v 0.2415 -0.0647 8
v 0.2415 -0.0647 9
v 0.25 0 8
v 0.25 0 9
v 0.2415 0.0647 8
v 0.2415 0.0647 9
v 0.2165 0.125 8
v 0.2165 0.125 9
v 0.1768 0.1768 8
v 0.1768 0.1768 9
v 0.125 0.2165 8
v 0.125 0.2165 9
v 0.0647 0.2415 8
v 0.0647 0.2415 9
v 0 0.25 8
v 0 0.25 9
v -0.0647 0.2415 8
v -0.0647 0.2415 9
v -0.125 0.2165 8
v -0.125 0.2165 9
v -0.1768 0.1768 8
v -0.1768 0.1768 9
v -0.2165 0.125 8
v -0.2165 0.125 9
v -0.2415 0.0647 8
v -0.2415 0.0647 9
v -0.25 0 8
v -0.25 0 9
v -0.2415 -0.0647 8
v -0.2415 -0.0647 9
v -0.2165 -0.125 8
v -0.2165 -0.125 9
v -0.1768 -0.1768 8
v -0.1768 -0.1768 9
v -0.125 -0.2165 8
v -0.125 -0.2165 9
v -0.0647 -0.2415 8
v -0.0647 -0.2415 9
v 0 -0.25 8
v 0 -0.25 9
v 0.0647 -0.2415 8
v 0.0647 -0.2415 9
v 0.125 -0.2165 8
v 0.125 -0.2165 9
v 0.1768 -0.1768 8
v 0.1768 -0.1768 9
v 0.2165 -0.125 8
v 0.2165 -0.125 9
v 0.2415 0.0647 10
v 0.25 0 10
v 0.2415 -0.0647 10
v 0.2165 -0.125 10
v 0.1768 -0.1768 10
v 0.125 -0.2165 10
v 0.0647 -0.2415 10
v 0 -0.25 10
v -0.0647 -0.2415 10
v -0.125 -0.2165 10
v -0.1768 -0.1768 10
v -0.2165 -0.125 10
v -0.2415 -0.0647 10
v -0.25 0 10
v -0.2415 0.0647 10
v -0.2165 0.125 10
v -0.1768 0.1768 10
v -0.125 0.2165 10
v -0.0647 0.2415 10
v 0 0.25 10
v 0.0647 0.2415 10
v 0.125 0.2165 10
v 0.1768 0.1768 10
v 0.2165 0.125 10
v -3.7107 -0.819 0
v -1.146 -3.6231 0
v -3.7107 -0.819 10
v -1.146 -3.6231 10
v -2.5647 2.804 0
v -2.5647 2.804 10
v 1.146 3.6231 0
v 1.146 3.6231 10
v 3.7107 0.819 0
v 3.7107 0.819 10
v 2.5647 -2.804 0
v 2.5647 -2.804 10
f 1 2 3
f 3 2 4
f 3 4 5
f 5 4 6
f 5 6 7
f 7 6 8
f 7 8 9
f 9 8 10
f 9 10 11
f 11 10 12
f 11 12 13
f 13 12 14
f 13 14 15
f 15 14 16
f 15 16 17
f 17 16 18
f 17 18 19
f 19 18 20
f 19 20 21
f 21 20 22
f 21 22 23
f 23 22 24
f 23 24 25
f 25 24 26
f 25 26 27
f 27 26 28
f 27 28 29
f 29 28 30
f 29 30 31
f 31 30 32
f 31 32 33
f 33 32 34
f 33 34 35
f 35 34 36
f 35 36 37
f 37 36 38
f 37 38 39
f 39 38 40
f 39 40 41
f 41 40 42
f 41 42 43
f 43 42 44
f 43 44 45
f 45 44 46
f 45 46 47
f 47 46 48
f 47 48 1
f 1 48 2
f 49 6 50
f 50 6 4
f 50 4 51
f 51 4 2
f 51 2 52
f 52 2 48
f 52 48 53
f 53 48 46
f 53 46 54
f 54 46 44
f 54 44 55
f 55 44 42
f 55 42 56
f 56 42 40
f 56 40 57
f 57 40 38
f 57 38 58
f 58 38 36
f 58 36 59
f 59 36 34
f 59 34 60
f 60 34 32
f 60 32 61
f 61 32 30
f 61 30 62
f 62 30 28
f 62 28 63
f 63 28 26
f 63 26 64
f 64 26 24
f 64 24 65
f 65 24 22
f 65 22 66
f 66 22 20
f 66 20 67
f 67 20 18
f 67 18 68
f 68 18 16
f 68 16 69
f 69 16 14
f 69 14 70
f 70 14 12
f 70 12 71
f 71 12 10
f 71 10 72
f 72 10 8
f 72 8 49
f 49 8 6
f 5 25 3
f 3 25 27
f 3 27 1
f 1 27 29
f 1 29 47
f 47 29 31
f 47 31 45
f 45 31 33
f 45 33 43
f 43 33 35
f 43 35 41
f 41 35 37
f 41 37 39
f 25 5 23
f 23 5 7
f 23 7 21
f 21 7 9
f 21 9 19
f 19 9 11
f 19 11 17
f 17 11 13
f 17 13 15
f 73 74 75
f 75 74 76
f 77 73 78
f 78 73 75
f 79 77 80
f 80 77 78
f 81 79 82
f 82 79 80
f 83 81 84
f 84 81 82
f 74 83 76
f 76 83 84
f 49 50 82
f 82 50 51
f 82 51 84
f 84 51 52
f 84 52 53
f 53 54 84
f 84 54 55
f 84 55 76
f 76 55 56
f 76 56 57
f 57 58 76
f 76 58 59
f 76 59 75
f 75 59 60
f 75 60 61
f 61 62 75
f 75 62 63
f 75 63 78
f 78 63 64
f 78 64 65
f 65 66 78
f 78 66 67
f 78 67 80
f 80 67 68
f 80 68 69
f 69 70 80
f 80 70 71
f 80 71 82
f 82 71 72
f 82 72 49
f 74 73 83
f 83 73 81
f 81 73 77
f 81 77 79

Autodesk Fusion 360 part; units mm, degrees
sketch "Sketch1" plane through (0, 0, 0) normal (0, 0, 1) x (1, 0, 0)
  line L0 (2.5647, -2.804) -> (3.7107, 0.819)
  line L1 (3.7107, 0.819) -> (1.146, 3.6231)
  line L2 (1.146, 3.6231) -> (-2.5647, 2.804)
  line L3 (-2.5647, 2.804) -> (-3.7107, -0.819)
  line L4 (-3.7107, -0.819) -> (-1.146, -3.6231)
  line L5 (-1.146, -3.6231) -> (2.5647, -2.804)
  dimension "d1" = 3.8
extrude "Extrude1" add sketch "Sketch1" along normal blind 10
sketch "Sketch2" plane through (0, 0, 10) normal (0, 0, 1) x (-1, 0, 0)
  line L0 (1.146, 3.6231) -> (-2.5647, 2.804)
  line L1 (-2.5647, 2.804) -> (-3.7107, -0.819)
  line L2 (-3.7107, -0.819) -> (-1.146, -3.6231)
  line L3 (-1.146, -3.6231) -> (2.5647, -2.804)
  line L4 (2.5647, -2.804) -> (3.7107, 0.819)
  line L5 (3.7107, 0.819) -> (1.146, 3.6231)
  circle A0 centre (0, 0) radius 0.25
  dimension "d6" = 0.5
extrude "Extrude3" cut sketch "Sketch2" against normal blind 2 contours A0
equation "d1 = polygon_side"
equation "d2 = polygon_height"
equation "polygon_side = 3.8 mm"
equation "polygon_height = 10 mm"
equation "d6 = nail_radius * 2"
equation "nail_radius = 0.25 mm"
equation "nail_depth = 2 mm"
equation "d11 = -nail_depth"
